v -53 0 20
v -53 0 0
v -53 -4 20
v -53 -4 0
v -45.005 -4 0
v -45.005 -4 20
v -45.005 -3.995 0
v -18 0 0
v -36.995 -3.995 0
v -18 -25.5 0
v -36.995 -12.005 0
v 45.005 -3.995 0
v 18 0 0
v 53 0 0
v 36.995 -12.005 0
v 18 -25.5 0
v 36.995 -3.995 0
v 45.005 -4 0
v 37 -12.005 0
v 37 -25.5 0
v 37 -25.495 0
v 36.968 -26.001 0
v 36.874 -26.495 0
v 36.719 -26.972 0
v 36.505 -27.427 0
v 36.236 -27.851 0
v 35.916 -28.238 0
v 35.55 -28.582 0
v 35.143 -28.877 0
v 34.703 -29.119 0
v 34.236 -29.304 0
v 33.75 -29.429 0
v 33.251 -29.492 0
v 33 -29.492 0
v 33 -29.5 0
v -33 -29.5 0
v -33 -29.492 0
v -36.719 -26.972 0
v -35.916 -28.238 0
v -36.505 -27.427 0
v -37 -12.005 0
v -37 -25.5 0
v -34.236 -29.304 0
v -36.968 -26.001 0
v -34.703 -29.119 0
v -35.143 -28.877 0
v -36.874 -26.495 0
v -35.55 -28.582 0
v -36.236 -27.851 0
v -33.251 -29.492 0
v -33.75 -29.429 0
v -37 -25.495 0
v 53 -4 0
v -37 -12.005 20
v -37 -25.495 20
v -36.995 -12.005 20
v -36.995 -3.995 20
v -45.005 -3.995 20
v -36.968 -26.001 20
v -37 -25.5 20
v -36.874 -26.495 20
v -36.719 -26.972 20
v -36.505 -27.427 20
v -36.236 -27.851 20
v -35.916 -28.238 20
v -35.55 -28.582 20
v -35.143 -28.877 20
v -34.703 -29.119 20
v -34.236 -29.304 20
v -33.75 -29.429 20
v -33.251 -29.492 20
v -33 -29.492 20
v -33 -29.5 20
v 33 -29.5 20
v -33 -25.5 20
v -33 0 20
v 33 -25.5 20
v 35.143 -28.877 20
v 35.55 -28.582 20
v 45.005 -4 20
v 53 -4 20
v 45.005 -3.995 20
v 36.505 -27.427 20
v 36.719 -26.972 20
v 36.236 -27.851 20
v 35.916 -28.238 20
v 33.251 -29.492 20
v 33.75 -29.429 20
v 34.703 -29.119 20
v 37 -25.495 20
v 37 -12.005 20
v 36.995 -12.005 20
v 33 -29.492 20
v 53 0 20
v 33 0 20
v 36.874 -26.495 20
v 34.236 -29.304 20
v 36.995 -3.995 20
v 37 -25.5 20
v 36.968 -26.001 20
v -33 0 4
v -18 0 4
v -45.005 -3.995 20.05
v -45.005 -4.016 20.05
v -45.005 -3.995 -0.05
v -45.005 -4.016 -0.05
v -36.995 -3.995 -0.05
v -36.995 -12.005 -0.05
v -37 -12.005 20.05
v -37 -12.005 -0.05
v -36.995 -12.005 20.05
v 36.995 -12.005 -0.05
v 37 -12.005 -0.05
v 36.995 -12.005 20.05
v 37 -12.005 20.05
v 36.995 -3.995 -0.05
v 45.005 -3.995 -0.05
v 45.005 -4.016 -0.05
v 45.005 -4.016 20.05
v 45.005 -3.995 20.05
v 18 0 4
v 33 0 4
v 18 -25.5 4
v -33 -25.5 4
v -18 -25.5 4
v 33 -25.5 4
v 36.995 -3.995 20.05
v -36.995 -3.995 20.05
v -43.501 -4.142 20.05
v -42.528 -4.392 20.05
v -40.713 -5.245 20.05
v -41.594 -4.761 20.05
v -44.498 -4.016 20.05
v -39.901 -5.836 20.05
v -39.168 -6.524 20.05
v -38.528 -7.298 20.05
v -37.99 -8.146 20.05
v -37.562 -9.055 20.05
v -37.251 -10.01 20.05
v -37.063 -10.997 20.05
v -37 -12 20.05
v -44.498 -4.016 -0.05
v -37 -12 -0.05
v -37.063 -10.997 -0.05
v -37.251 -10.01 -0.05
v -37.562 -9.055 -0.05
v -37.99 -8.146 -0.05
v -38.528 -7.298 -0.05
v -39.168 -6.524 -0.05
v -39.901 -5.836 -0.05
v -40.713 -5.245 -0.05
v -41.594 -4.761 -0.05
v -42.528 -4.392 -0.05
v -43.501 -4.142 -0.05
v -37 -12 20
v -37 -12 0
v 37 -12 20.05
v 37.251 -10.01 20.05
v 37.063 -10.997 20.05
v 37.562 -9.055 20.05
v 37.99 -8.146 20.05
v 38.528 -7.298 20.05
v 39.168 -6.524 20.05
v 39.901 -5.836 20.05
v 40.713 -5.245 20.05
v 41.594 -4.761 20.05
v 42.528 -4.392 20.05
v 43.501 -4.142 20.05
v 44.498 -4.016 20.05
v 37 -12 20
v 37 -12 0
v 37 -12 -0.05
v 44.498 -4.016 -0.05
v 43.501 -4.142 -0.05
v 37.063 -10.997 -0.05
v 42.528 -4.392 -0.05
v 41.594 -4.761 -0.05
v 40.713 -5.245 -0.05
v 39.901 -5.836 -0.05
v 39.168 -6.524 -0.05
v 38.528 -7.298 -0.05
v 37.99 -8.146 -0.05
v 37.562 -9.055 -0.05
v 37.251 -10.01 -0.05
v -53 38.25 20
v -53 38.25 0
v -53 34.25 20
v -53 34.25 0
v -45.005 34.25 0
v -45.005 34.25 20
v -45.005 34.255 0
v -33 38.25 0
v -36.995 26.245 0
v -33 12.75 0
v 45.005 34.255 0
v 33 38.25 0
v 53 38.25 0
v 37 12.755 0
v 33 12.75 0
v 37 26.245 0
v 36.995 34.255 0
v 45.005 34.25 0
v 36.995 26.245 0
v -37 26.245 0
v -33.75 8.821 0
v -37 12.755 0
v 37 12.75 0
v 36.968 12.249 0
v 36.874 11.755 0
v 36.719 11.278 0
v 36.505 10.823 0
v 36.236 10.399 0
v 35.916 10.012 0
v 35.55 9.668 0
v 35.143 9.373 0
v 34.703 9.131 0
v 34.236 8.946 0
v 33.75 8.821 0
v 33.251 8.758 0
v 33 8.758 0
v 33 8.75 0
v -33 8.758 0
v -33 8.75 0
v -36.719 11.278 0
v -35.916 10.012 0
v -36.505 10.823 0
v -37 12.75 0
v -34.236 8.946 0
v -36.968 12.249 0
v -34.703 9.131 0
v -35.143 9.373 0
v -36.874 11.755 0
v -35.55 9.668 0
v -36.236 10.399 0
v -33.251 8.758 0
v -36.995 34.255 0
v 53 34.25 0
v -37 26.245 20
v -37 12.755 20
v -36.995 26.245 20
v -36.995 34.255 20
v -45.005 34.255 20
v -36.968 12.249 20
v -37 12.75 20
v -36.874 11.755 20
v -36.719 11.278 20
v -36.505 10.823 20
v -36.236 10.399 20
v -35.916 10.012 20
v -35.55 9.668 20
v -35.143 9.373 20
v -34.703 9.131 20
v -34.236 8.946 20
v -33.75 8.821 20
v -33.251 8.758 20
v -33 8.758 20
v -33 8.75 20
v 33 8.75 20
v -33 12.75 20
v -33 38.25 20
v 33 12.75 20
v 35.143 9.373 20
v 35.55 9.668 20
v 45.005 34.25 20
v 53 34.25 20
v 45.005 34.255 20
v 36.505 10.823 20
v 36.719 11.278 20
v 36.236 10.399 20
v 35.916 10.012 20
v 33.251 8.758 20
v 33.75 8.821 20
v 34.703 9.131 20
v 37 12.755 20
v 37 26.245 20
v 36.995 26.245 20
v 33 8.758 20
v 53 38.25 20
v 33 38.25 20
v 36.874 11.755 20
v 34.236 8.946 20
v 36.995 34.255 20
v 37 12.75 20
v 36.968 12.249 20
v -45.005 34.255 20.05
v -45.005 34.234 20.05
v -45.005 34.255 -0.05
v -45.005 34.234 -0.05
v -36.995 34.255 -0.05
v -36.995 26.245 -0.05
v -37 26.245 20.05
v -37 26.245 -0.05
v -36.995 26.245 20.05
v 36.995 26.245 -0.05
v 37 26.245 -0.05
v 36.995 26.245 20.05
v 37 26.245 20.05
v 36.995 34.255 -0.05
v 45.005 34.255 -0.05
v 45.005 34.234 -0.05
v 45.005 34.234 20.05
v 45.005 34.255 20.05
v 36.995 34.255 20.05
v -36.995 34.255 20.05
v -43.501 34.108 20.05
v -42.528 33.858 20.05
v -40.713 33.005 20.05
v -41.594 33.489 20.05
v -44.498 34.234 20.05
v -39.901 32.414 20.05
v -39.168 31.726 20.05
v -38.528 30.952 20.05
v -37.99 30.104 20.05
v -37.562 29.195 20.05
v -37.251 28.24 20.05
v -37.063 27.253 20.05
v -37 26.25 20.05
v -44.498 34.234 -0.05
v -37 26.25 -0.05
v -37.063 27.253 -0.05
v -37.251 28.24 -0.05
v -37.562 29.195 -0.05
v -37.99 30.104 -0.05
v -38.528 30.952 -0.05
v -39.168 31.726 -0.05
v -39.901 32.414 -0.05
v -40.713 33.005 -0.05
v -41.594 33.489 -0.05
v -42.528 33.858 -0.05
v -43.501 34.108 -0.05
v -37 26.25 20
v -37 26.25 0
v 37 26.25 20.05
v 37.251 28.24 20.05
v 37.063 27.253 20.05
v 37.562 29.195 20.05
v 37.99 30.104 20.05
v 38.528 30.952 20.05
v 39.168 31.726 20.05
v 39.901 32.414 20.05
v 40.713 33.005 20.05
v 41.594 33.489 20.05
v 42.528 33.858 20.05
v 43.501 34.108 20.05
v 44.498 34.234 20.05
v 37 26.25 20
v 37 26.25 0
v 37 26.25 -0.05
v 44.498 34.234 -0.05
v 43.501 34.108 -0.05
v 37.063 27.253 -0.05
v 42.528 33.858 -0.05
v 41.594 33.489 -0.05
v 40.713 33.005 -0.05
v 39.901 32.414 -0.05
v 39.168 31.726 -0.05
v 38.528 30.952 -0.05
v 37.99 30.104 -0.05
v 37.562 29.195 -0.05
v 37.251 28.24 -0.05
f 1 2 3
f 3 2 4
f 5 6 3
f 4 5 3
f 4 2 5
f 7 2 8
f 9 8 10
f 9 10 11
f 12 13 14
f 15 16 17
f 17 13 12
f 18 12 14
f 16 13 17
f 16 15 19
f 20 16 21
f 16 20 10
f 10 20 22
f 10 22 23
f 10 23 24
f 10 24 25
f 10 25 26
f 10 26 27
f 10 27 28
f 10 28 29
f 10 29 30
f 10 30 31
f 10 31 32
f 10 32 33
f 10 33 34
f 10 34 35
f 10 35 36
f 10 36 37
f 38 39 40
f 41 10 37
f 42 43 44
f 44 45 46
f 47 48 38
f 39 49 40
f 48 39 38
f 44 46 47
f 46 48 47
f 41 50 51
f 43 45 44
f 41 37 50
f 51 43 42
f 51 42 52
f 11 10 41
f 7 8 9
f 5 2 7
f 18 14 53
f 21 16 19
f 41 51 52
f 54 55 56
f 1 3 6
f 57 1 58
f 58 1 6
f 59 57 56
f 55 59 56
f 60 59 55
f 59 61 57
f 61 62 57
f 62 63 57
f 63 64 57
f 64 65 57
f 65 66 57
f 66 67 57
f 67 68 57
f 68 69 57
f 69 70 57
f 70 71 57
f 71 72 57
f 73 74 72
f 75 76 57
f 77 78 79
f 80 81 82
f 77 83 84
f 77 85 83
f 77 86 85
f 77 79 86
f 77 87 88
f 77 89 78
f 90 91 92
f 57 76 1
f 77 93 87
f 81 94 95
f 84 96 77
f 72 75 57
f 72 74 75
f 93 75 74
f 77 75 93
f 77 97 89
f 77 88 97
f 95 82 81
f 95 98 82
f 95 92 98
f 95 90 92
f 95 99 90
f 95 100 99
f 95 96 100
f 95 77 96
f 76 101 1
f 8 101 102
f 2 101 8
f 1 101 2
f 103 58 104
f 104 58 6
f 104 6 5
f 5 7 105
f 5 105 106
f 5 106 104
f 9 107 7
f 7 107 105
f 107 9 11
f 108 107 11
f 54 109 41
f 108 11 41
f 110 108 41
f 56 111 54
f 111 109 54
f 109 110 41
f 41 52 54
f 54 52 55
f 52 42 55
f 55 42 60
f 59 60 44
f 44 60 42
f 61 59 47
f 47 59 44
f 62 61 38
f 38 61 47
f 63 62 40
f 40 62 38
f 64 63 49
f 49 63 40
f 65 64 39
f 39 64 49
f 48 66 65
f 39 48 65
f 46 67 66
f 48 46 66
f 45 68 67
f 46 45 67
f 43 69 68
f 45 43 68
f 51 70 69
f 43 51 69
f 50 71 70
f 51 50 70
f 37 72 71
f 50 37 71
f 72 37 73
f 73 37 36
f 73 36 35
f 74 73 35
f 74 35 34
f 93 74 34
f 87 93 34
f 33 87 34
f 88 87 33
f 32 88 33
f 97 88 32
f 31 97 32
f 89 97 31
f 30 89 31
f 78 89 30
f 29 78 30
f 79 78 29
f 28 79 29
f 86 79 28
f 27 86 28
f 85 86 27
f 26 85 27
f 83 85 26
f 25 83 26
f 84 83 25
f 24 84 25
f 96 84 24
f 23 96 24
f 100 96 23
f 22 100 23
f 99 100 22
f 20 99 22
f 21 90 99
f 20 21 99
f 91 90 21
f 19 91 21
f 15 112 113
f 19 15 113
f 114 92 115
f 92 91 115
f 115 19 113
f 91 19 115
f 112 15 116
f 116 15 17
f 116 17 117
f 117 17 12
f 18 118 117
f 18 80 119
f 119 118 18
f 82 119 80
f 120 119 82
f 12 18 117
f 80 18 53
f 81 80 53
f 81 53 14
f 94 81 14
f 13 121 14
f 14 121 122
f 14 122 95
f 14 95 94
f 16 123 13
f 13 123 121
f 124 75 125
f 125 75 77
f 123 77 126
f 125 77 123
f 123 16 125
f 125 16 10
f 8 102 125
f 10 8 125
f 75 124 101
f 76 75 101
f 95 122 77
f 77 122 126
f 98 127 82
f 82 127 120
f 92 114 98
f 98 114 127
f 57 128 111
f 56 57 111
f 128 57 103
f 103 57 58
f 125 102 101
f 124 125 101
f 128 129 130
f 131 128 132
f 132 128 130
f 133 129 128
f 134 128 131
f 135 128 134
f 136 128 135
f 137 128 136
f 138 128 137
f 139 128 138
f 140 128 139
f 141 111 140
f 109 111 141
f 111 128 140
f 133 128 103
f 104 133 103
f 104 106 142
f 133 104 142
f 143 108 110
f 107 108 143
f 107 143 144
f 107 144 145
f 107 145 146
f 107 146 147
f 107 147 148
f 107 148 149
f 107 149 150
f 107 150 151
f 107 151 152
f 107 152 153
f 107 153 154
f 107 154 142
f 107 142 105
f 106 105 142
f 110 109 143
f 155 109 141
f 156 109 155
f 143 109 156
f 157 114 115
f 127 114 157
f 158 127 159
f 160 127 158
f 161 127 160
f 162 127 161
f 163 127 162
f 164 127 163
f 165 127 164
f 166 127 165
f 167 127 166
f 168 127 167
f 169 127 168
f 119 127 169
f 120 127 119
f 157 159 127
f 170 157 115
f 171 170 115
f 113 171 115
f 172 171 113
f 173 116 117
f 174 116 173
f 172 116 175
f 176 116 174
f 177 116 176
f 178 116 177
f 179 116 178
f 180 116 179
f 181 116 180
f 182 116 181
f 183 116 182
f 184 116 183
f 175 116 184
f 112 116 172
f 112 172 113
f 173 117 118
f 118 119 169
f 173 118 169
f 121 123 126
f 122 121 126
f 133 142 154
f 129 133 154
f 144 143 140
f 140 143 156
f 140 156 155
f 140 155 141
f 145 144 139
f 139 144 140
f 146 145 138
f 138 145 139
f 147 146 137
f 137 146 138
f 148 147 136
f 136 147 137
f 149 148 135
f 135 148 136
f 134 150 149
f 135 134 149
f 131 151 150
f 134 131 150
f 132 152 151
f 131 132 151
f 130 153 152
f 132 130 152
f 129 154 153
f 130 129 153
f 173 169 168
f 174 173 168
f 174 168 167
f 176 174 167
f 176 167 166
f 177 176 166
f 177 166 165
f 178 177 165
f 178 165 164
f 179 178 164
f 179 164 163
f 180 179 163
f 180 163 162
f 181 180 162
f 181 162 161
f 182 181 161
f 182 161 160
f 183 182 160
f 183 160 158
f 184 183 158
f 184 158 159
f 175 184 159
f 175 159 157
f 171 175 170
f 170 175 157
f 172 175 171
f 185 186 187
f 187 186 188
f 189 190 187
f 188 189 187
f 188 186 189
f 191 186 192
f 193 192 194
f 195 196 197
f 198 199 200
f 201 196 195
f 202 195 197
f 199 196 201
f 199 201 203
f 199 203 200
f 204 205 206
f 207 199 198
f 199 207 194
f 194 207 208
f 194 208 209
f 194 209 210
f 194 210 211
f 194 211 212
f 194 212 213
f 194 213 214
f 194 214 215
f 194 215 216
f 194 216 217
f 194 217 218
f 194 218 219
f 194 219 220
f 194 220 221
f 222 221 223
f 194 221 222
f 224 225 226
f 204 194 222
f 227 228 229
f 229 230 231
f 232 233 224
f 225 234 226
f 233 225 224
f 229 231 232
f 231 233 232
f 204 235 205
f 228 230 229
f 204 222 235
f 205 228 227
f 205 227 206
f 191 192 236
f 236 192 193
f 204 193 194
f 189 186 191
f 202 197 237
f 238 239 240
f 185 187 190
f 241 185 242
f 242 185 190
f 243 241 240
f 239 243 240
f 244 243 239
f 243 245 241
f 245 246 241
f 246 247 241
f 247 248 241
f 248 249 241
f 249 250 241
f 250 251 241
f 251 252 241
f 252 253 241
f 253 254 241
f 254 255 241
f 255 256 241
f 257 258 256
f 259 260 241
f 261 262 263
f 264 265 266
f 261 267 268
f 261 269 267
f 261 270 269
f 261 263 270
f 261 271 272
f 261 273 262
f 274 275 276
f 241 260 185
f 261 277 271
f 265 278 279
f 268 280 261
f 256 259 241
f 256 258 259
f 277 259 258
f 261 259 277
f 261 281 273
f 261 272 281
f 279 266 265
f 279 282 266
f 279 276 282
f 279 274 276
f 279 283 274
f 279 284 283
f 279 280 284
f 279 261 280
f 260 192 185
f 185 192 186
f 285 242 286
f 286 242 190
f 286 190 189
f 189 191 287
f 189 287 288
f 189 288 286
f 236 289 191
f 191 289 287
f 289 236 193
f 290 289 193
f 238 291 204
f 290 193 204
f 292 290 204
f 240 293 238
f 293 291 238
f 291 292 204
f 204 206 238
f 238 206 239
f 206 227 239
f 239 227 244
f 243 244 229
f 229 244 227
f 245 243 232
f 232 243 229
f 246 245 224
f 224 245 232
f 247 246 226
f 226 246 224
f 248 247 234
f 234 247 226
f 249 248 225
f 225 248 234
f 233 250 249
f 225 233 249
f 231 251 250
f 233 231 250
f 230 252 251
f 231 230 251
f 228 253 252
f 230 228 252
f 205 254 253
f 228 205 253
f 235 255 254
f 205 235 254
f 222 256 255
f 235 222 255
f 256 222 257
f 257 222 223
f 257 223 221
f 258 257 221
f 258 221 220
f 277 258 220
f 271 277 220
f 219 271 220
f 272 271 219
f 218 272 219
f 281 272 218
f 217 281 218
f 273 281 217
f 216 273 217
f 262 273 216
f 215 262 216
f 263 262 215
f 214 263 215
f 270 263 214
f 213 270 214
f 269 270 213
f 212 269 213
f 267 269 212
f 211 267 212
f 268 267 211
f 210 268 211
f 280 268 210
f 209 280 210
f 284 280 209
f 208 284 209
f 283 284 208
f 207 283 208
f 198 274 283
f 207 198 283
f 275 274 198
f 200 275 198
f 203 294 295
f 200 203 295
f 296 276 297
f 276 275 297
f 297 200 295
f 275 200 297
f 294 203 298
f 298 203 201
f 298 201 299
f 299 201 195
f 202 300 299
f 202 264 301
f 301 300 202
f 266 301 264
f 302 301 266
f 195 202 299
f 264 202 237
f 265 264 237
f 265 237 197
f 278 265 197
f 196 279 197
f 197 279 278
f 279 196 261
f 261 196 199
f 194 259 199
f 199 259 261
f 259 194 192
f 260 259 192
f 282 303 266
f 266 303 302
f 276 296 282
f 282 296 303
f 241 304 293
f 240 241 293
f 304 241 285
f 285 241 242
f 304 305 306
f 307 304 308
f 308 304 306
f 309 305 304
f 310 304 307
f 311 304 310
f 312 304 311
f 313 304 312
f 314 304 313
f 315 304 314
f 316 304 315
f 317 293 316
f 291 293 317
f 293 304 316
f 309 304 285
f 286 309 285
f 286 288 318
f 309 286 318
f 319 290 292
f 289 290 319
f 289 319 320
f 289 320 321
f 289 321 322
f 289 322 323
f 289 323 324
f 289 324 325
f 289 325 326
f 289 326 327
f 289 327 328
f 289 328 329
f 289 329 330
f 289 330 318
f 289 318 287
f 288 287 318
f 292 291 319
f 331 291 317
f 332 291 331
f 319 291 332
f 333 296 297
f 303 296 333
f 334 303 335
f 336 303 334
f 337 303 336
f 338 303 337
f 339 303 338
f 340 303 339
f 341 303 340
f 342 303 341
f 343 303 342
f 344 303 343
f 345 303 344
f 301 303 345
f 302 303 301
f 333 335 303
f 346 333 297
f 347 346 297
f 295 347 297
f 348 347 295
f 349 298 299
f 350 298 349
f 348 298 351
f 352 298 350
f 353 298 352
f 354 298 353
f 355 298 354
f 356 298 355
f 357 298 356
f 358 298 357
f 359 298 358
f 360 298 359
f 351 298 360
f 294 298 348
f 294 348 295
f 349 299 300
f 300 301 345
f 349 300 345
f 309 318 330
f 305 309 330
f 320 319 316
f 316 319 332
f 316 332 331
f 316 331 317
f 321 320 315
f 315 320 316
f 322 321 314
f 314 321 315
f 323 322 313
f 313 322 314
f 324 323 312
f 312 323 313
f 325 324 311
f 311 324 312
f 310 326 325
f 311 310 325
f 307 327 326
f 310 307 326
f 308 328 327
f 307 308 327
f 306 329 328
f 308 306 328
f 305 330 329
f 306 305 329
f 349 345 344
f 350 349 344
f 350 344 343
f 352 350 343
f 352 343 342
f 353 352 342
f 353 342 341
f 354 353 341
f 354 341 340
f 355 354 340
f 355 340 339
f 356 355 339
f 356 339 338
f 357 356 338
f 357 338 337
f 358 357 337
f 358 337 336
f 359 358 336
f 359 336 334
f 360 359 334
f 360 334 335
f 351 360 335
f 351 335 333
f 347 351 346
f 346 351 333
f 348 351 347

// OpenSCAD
// rigtig bredde er nok nærmere 65mm, men Leapfrog printer ca. en mm for kort i bredden. Højde passer.
   width = 66;
   height = 25.5;


// Usually you do not have to change these variables
   depth = 20;
   // length of mounting
   lm = 20;
   ls = 15;
   // thickness
   t = 4;
   t_mount = 4;
   t_stoppers = 4;

/*
   width = 74.5;
   height = 28.5;
   depth = 20;
   // length of mounting
   lm = 20;
   ls = 15;
   // thickness
   t = 4;
   t_mount = 4;
   t_stoppers = 4;
*/
// For making rounded corners
module fillet(r, h) {
    translate([r / 2, r / 2, 0])

    
        difference() {
            cube([r + 0.01, r + 0.01, h], center = true);

            translate([r/2, r/2, 0])
                cylinder(r = r, h = h + 1,$fn = 50, center = true);

        }
}


module frame_L(_width, _height, _depth){
    h = _height;
    w = _width/2;
    d = _depth;

    // top
    translate([0,0,h]) cube([w,d,t]);
    // side
    difference(){
        translate([w,0,0]) cube([t,d,h+t]);
        // add rounded corner
        translate([w+t,d/2,h+t])
        rotate([90,180,0])
        fillet(t,d+0.1);
        }
        
    // mounting piece
    union(){
        translate([w,0,0]) cube([lm,d,t_mount]);
        // add rounded corner
        translate([w+t,d/2,t])
        rotate([90,0,0])
        fillet(2*t,d+0.1);
    }
}

module frame(_width, _height, _depth){
    frame_L(_width, _height, _depth);
    mirror([1,0,0])
    frame_L(_width, _height, _depth);
}

module stoppers(_width,_w_frame, _h_frame){

    w = _w_frame/2;
    translate([w-_width,0,0])cube([_width,t_stoppers,_h_frame]);
    mirror([1,0,0])
    translate([w-_width,0,0])cube([_width,t_stoppers,_h_frame]);
    
}

// bottom mount
rotate([90,0,0]) frame(width,height,depth);
rotate([90,0,0]) stoppers(ls,width,height);

translate([0,height*1.5,0])
rotate([90,0,0]) frame(width,height,depth);
